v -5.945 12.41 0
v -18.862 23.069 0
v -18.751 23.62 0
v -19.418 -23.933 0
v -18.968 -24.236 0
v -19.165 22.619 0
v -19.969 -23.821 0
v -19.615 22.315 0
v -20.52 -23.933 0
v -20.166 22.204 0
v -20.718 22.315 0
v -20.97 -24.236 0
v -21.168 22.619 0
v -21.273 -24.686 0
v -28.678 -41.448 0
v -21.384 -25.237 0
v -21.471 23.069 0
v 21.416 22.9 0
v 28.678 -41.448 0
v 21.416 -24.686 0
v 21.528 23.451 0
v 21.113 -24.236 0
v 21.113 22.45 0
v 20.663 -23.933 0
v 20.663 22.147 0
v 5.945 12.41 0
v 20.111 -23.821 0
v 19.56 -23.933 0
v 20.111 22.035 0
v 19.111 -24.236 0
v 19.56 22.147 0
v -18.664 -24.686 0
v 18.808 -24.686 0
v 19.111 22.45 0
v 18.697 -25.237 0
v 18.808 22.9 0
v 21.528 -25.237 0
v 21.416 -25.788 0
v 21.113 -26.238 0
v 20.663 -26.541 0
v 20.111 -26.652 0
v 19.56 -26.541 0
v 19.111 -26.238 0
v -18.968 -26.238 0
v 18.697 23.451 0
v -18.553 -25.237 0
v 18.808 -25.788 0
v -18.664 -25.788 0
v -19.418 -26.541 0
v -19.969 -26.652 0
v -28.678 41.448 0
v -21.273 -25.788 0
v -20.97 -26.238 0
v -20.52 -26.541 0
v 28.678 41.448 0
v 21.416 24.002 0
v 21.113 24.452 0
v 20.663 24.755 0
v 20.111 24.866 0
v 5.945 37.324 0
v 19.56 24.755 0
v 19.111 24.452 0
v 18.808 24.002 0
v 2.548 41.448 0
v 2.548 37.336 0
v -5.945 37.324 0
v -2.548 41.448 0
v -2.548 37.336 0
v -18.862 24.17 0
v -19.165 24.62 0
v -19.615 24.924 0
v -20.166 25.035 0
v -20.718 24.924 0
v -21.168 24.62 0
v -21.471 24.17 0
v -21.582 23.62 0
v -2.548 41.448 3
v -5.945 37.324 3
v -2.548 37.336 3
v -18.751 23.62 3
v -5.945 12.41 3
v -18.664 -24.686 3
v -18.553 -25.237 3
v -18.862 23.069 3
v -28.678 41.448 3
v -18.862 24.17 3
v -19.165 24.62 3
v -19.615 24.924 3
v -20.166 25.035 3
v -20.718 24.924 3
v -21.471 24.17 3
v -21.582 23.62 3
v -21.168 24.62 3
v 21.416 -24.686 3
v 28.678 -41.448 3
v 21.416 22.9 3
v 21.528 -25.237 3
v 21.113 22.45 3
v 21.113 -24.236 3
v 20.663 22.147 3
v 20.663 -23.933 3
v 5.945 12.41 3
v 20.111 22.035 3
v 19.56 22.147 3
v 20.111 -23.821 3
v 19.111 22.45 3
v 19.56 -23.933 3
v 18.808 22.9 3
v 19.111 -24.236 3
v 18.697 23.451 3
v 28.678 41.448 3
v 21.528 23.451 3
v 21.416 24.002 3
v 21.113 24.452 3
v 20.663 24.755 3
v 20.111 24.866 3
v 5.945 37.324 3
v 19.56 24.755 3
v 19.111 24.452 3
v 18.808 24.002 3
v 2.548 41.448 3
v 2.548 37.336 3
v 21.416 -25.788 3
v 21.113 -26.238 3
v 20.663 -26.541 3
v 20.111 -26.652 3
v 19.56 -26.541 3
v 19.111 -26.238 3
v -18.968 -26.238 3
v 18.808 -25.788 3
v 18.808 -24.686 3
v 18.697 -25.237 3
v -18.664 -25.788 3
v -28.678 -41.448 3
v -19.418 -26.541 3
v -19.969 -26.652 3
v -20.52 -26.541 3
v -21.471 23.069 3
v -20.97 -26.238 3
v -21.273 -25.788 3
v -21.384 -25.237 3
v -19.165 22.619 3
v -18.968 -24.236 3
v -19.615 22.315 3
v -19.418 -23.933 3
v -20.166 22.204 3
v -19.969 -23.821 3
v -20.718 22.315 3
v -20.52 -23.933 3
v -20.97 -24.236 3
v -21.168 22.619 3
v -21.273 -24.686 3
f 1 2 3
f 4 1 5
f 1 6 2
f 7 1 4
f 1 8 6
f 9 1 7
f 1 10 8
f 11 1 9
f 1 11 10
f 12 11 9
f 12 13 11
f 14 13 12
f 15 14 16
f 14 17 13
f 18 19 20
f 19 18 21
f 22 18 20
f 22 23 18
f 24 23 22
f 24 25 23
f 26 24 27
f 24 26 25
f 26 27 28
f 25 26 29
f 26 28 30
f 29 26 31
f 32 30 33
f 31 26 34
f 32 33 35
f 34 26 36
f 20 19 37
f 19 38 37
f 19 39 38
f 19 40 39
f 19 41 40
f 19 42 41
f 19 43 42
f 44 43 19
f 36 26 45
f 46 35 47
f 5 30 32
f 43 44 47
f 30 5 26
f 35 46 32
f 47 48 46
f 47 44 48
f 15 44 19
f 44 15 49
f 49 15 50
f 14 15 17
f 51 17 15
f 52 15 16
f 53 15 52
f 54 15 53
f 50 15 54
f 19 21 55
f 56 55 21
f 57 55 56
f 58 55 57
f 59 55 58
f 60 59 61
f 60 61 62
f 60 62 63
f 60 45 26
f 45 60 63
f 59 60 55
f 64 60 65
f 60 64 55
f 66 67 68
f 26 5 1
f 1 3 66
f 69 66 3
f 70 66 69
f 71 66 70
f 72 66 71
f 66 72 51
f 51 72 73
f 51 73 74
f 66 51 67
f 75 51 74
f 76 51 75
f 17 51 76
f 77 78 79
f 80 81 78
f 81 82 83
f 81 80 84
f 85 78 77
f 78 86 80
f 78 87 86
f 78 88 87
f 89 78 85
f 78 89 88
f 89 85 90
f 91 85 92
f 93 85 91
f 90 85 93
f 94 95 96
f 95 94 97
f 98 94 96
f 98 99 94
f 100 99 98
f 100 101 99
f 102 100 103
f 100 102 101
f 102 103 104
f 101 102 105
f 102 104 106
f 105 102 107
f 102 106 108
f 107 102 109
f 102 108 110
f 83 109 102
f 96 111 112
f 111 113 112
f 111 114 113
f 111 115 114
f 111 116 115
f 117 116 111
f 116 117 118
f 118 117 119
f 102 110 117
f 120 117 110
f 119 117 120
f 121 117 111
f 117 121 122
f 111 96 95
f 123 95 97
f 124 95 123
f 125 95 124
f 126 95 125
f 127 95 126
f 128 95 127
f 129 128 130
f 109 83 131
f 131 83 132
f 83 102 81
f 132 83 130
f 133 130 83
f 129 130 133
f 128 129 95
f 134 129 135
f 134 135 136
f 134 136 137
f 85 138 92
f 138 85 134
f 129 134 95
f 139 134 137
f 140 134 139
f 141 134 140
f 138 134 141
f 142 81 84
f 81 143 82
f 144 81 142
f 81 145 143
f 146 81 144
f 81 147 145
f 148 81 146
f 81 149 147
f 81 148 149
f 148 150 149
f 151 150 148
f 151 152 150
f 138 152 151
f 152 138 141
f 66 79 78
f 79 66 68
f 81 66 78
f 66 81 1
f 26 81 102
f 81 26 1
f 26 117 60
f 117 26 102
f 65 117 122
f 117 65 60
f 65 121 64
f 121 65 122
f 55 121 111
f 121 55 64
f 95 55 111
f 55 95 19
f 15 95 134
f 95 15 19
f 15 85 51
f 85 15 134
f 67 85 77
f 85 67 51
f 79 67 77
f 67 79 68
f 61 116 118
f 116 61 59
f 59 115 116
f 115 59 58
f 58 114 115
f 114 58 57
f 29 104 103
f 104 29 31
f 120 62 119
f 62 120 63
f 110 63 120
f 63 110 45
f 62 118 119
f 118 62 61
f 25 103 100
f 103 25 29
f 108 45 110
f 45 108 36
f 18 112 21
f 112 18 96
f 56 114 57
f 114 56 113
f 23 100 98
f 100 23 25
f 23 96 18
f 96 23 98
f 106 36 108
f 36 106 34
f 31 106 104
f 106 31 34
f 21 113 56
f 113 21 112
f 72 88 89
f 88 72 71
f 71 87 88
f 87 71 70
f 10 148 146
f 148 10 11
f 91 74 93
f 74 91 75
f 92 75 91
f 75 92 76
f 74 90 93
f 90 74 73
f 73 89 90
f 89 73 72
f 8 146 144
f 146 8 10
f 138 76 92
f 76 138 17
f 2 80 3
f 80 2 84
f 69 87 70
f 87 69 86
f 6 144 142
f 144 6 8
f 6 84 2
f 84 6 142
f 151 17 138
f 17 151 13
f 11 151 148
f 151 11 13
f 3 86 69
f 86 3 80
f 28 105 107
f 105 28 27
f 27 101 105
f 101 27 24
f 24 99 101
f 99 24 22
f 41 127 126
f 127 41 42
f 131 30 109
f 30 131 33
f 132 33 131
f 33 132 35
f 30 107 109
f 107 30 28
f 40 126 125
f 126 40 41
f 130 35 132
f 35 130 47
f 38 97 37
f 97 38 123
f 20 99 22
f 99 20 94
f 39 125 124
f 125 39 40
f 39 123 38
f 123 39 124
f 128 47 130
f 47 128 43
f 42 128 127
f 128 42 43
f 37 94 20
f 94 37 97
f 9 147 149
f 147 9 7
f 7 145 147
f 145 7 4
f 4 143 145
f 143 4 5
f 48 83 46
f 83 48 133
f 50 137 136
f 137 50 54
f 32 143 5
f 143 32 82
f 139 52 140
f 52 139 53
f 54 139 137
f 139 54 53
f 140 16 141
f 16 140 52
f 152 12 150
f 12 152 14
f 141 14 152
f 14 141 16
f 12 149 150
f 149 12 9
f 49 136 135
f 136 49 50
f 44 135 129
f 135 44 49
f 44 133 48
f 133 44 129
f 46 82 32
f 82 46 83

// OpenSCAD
// Module names are of the form poly_<inkscape-path-id>().  As a result,
// you can associate a polygon in this OpenSCAD program with the corresponding
// SVG element in the Inkscape document by looking for the XML element with
// the attribute id="inkscape-path-id".

// fudge value is used to ensure that subtracted solids are a tad taller
// in the z dimension than the polygon being subtracted from.  This helps
// keep the resulting .stl file manifold.
fudge = 0.1;

module poly_path6446(h)
{
  scale([25.4/90, -25.4/90, 1]) union()
  {
    difference()
    {
       linear_extrude(height=h)
         polygon([[-101.615260,-146.863325],[-9.029310,-146.863325],[-9.029310,-132.293005],[-21.064460,-132.250005],[-21.064460,-43.972635],[21.064450,-43.972635],[21.064450,-132.250005],[9.029300,-132.293005],[9.029300,-146.863325],[101.615260,-146.863325],[101.615260,146.863325],[-101.615260,146.863325]]);
       translate([0, 0, -fudge])
         linear_extrude(height=h+2*fudge)
           polygon([[76.279310,-83.093775],[75.885023,-81.141687],[74.809585,-79.547386],[73.214127,-78.472372],[71.259780,-78.078145],[69.308305,-78.472372],[67.715351,-79.547386],[66.641685,-81.141687],[66.248070,-83.093775],[66.641685,-85.047506],[67.715351,-86.641621],[69.308305,-87.715718],[71.259780,-88.109395],[73.214127,-87.715718],[74.809585,-86.641621],[75.885023,-85.047506],[76.279310,-83.093775]]);
       translate([0, 0, -fudge])
         linear_extrude(height=h+2*fudge)
           polygon([[-66.439480,-83.691435],[-66.833157,-81.739343],[-67.907254,-80.145042],[-69.501369,-79.070031],[-71.455100,-78.675805],[-73.408837,-79.070031],[-75.002955,-80.145042],[-76.077053,-81.739343],[-76.470730,-83.691435],[-76.077053,-85.643521],[-75.002955,-87.237819],[-73.408837,-88.312830],[-71.455100,-88.707055],[-69.501369,-88.312830],[-67.907254,-87.237819],[-66.833157,-85.643521],[-66.439480,-83.691435]]);
       translate([0, 0, -fudge])
         linear_extrude(height=h+2*fudge)
           polygon([[76.279310,89.421895],[75.885023,91.375638],[74.809585,92.969759],[73.214127,94.043858],[71.259780,94.437535],[69.308305,94.043858],[67.715351,92.969759],[66.641685,91.375638],[66.248070,89.421895],[66.641685,87.469809],[67.715351,85.875511],[69.308305,84.800500],[71.259780,84.406275],[73.214127,84.800500],[74.809585,85.875511],[75.885023,87.469809],[76.279310,89.421895]]);
       translate([0, 0, -fudge])
         linear_extrude(height=h+2*fudge)
           polygon([[-65.740260,89.421895],[-66.133937,91.375638],[-67.208034,92.969759],[-68.802149,94.043858],[-70.755880,94.437535],[-72.707972,94.043858],[-74.302272,92.969759],[-75.377284,91.375638],[-75.771510,89.421895],[-75.377284,87.469809],[-74.302272,85.875511],[-72.707972,84.800500],[-70.755880,84.406275],[-68.802149,84.800500],[-67.208034,85.875511],[-66.133937,87.469809],[-65.740260,89.421895]]);
       translate([0, 0, -fudge])
         linear_extrude(height=h+2*fudge)
           polygon([[-65.740260,89.421895]]);
    }
  }
}

poly_path6446(3);
